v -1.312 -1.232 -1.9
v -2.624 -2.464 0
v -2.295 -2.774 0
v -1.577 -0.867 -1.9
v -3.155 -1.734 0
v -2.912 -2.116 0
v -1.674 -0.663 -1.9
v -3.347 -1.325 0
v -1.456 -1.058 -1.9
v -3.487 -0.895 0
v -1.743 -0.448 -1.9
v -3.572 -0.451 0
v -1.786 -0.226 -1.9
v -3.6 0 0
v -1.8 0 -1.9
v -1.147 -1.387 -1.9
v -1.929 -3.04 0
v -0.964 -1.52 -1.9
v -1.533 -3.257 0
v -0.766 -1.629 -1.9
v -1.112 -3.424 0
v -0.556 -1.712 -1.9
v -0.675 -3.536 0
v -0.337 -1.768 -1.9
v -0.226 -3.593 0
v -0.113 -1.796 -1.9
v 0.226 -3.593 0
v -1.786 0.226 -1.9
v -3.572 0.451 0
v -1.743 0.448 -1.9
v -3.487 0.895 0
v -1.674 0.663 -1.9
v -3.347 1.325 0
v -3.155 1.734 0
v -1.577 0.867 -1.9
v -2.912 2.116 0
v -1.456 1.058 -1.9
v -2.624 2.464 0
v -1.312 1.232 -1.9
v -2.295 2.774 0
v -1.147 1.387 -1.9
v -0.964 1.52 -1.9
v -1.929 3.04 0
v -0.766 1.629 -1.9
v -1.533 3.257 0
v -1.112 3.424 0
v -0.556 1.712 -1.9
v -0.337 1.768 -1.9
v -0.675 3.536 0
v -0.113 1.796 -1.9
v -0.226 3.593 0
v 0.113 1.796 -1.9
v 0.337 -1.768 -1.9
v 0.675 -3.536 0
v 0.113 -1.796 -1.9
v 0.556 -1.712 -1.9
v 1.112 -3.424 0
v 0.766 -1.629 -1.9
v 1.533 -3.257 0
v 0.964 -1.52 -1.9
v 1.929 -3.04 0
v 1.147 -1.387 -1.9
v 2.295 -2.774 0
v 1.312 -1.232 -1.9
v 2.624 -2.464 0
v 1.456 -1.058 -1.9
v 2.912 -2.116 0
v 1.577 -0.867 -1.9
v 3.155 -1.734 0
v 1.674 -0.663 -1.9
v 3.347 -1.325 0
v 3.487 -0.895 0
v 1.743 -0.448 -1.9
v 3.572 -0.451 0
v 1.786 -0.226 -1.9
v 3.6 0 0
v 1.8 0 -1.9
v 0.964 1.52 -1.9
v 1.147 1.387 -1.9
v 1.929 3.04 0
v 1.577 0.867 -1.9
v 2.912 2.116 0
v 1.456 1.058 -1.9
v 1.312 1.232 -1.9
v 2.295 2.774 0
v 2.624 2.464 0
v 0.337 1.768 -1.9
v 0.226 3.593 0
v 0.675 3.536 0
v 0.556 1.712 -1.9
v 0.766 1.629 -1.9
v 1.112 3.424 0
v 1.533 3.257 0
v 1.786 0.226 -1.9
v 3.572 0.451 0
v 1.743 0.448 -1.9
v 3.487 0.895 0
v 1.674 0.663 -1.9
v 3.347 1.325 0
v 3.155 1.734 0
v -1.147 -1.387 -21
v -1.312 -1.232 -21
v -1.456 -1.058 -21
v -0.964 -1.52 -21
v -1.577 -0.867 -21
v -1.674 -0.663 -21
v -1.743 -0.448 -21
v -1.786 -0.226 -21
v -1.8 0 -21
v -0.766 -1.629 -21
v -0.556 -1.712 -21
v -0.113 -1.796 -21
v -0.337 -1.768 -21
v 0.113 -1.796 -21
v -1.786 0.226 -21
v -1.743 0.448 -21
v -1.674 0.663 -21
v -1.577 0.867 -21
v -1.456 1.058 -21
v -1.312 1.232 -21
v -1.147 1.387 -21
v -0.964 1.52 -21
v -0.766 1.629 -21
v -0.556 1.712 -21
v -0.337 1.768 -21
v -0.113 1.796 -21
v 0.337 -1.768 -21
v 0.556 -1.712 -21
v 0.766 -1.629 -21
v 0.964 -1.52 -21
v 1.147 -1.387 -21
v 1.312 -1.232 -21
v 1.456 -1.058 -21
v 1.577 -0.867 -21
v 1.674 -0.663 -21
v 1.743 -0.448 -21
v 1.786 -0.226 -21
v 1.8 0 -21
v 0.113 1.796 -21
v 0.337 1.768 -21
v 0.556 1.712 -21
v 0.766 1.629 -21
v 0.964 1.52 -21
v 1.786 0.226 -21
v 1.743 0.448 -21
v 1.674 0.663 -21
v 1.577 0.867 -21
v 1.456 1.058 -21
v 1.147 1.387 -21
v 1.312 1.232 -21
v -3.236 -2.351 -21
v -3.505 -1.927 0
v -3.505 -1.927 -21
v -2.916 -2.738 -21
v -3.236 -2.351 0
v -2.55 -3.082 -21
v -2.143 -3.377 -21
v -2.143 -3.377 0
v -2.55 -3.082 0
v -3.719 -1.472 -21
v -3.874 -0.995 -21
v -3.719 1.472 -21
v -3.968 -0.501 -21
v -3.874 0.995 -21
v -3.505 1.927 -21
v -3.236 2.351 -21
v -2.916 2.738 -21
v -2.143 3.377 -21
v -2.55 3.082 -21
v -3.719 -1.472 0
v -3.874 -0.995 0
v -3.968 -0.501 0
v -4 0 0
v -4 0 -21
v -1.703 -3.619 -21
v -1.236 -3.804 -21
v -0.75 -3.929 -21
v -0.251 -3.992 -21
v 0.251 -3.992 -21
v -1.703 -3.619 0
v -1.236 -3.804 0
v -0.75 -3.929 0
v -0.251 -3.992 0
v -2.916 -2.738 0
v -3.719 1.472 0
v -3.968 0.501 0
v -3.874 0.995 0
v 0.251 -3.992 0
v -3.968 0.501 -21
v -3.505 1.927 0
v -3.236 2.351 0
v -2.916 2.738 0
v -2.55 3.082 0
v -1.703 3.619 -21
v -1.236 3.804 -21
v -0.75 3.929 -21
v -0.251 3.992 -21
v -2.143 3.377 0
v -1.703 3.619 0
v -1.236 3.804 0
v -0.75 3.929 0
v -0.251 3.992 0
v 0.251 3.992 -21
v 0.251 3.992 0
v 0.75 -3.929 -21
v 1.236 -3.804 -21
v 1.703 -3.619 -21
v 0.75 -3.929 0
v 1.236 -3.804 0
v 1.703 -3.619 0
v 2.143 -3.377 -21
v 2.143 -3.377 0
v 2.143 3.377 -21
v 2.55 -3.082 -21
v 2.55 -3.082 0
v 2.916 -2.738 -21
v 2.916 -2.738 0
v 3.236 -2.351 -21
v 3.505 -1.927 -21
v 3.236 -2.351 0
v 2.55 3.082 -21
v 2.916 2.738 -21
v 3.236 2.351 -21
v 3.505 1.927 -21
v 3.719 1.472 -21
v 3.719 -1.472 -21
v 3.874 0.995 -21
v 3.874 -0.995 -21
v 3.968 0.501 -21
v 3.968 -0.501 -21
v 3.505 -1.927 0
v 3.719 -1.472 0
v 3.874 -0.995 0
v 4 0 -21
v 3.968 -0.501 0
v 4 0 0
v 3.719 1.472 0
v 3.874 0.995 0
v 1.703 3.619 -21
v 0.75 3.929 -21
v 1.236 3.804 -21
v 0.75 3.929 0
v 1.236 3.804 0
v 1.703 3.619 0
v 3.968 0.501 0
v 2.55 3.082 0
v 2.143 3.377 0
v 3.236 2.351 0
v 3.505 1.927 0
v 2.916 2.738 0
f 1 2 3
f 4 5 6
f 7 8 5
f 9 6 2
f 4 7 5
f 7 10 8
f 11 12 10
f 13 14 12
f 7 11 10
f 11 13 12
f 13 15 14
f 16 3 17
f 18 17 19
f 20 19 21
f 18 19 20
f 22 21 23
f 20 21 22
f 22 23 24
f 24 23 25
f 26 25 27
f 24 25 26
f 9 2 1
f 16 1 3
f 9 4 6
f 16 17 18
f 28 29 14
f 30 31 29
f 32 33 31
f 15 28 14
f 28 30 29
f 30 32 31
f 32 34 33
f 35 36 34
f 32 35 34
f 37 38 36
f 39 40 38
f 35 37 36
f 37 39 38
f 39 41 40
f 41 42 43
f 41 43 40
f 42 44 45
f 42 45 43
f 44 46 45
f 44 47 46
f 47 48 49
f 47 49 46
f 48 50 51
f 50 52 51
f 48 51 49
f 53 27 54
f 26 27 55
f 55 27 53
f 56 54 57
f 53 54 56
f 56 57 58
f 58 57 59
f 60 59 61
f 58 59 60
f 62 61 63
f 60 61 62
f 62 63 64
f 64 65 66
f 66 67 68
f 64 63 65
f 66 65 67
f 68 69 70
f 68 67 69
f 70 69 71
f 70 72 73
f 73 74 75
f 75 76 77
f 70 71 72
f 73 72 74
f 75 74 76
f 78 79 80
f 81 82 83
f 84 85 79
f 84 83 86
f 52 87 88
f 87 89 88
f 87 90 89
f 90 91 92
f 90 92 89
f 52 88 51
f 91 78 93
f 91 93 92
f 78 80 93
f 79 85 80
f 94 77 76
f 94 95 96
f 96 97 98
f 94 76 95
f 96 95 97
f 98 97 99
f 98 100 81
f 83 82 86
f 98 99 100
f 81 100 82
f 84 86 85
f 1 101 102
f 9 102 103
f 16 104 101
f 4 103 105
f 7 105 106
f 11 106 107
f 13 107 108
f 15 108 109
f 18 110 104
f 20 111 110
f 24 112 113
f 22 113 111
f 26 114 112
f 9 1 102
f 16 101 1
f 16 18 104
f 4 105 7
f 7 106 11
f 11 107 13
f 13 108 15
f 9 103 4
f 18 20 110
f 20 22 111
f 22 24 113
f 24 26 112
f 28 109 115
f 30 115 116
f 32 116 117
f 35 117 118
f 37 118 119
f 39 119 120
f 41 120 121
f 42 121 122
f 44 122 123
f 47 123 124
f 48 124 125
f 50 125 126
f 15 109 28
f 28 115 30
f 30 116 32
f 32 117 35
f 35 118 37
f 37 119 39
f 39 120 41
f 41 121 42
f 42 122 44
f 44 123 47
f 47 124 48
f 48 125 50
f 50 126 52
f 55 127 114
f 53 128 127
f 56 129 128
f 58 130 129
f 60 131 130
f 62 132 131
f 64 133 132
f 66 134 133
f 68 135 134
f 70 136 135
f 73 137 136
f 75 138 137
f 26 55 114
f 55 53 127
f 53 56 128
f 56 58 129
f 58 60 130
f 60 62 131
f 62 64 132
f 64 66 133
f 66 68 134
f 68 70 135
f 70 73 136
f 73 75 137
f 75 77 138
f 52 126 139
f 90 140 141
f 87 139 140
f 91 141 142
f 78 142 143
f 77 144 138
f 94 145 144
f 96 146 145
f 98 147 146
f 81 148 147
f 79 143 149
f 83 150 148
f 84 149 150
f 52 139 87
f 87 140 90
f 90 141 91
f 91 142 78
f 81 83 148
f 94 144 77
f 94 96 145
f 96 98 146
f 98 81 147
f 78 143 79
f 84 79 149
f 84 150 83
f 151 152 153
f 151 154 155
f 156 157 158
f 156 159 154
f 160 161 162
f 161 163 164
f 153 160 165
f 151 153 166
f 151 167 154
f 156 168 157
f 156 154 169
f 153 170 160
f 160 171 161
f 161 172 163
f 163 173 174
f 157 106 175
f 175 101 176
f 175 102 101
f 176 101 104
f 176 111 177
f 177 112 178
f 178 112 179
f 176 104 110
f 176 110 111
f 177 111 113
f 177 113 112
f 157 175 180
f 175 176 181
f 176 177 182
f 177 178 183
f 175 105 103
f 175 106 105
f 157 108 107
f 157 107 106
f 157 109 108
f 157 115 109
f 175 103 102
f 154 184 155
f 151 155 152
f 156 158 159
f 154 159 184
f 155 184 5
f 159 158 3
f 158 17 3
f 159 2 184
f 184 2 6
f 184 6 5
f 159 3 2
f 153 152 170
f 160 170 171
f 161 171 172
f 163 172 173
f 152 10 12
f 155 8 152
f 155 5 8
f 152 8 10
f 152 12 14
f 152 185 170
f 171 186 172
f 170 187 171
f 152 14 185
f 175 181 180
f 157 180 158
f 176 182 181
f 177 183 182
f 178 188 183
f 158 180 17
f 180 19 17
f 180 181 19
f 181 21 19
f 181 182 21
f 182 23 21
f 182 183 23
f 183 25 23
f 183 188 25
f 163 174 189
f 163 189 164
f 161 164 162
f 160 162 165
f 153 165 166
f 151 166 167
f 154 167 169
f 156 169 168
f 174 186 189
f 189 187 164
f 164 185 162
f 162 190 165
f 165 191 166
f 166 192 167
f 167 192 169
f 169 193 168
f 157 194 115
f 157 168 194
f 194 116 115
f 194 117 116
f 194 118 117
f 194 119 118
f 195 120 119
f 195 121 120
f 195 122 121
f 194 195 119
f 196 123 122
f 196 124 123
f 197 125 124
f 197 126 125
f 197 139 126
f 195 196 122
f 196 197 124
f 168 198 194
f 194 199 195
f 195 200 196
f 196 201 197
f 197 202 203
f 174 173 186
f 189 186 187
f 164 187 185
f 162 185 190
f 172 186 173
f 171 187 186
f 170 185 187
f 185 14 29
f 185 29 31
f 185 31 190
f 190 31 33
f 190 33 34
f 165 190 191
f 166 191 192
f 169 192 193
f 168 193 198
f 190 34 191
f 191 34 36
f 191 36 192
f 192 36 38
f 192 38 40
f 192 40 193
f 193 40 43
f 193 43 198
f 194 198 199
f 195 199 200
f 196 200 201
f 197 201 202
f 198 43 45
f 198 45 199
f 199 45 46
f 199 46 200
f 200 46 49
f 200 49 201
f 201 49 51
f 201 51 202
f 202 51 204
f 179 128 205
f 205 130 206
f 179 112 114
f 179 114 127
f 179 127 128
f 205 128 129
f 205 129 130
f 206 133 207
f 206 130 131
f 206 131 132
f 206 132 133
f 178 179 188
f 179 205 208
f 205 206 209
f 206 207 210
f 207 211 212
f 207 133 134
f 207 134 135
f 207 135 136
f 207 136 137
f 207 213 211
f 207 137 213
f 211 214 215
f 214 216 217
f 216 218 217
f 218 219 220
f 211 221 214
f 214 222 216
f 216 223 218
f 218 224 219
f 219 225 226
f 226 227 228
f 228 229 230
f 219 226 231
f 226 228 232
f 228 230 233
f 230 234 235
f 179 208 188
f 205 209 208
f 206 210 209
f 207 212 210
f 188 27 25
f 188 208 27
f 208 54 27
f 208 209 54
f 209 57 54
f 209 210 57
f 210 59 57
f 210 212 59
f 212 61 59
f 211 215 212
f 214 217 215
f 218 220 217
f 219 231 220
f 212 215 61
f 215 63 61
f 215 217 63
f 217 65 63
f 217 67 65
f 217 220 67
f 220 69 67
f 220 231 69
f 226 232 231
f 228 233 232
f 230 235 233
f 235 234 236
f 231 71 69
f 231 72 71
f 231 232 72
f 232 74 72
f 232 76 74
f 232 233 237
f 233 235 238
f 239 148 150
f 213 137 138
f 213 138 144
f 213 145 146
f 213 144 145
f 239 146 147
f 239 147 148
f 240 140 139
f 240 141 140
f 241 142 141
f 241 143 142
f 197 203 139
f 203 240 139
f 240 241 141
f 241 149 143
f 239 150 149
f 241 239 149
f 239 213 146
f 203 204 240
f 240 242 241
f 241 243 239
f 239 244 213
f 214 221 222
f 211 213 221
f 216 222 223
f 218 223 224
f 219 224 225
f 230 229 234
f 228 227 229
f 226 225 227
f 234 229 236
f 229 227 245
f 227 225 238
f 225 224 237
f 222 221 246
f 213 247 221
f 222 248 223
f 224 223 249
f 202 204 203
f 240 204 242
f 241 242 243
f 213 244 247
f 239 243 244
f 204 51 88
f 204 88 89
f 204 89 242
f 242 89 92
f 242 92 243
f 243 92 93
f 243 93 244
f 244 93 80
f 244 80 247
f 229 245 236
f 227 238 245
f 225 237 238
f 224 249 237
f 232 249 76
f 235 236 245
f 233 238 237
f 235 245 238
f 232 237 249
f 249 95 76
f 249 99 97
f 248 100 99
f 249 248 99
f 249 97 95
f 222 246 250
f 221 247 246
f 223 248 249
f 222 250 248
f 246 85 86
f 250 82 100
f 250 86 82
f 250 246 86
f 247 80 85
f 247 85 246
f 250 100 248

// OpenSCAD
$fn = 50;

difference() {
	union() {
		translate(v = [0, 0, -21.0]) {
			cylinder(h = 21, r = 4.0);
		}
	}
	union() {
		translate(v = [0, 0, 0]) {
			rotate(a = [0, 0, 0]) {
				difference() {
					union() {
						translate(v = [0, 0, -24.0]) {
							cylinder(h = 24, r = 1.5);
						}
						translate(v = [0, 0, -1.9]) {
							cylinder(h = 1.9, r1 = 1.8, r2 = 3.6);
						}
						translate(v = [0, 0, -24.0]) {
							cylinder(h = 24, r = 1.8);
						}
						translate(v = [0, 0, -24.0]) {
							cylinder(h = 24, r = 1.5);
						}
					}
					union();
				}
			}
		}
	}
}
